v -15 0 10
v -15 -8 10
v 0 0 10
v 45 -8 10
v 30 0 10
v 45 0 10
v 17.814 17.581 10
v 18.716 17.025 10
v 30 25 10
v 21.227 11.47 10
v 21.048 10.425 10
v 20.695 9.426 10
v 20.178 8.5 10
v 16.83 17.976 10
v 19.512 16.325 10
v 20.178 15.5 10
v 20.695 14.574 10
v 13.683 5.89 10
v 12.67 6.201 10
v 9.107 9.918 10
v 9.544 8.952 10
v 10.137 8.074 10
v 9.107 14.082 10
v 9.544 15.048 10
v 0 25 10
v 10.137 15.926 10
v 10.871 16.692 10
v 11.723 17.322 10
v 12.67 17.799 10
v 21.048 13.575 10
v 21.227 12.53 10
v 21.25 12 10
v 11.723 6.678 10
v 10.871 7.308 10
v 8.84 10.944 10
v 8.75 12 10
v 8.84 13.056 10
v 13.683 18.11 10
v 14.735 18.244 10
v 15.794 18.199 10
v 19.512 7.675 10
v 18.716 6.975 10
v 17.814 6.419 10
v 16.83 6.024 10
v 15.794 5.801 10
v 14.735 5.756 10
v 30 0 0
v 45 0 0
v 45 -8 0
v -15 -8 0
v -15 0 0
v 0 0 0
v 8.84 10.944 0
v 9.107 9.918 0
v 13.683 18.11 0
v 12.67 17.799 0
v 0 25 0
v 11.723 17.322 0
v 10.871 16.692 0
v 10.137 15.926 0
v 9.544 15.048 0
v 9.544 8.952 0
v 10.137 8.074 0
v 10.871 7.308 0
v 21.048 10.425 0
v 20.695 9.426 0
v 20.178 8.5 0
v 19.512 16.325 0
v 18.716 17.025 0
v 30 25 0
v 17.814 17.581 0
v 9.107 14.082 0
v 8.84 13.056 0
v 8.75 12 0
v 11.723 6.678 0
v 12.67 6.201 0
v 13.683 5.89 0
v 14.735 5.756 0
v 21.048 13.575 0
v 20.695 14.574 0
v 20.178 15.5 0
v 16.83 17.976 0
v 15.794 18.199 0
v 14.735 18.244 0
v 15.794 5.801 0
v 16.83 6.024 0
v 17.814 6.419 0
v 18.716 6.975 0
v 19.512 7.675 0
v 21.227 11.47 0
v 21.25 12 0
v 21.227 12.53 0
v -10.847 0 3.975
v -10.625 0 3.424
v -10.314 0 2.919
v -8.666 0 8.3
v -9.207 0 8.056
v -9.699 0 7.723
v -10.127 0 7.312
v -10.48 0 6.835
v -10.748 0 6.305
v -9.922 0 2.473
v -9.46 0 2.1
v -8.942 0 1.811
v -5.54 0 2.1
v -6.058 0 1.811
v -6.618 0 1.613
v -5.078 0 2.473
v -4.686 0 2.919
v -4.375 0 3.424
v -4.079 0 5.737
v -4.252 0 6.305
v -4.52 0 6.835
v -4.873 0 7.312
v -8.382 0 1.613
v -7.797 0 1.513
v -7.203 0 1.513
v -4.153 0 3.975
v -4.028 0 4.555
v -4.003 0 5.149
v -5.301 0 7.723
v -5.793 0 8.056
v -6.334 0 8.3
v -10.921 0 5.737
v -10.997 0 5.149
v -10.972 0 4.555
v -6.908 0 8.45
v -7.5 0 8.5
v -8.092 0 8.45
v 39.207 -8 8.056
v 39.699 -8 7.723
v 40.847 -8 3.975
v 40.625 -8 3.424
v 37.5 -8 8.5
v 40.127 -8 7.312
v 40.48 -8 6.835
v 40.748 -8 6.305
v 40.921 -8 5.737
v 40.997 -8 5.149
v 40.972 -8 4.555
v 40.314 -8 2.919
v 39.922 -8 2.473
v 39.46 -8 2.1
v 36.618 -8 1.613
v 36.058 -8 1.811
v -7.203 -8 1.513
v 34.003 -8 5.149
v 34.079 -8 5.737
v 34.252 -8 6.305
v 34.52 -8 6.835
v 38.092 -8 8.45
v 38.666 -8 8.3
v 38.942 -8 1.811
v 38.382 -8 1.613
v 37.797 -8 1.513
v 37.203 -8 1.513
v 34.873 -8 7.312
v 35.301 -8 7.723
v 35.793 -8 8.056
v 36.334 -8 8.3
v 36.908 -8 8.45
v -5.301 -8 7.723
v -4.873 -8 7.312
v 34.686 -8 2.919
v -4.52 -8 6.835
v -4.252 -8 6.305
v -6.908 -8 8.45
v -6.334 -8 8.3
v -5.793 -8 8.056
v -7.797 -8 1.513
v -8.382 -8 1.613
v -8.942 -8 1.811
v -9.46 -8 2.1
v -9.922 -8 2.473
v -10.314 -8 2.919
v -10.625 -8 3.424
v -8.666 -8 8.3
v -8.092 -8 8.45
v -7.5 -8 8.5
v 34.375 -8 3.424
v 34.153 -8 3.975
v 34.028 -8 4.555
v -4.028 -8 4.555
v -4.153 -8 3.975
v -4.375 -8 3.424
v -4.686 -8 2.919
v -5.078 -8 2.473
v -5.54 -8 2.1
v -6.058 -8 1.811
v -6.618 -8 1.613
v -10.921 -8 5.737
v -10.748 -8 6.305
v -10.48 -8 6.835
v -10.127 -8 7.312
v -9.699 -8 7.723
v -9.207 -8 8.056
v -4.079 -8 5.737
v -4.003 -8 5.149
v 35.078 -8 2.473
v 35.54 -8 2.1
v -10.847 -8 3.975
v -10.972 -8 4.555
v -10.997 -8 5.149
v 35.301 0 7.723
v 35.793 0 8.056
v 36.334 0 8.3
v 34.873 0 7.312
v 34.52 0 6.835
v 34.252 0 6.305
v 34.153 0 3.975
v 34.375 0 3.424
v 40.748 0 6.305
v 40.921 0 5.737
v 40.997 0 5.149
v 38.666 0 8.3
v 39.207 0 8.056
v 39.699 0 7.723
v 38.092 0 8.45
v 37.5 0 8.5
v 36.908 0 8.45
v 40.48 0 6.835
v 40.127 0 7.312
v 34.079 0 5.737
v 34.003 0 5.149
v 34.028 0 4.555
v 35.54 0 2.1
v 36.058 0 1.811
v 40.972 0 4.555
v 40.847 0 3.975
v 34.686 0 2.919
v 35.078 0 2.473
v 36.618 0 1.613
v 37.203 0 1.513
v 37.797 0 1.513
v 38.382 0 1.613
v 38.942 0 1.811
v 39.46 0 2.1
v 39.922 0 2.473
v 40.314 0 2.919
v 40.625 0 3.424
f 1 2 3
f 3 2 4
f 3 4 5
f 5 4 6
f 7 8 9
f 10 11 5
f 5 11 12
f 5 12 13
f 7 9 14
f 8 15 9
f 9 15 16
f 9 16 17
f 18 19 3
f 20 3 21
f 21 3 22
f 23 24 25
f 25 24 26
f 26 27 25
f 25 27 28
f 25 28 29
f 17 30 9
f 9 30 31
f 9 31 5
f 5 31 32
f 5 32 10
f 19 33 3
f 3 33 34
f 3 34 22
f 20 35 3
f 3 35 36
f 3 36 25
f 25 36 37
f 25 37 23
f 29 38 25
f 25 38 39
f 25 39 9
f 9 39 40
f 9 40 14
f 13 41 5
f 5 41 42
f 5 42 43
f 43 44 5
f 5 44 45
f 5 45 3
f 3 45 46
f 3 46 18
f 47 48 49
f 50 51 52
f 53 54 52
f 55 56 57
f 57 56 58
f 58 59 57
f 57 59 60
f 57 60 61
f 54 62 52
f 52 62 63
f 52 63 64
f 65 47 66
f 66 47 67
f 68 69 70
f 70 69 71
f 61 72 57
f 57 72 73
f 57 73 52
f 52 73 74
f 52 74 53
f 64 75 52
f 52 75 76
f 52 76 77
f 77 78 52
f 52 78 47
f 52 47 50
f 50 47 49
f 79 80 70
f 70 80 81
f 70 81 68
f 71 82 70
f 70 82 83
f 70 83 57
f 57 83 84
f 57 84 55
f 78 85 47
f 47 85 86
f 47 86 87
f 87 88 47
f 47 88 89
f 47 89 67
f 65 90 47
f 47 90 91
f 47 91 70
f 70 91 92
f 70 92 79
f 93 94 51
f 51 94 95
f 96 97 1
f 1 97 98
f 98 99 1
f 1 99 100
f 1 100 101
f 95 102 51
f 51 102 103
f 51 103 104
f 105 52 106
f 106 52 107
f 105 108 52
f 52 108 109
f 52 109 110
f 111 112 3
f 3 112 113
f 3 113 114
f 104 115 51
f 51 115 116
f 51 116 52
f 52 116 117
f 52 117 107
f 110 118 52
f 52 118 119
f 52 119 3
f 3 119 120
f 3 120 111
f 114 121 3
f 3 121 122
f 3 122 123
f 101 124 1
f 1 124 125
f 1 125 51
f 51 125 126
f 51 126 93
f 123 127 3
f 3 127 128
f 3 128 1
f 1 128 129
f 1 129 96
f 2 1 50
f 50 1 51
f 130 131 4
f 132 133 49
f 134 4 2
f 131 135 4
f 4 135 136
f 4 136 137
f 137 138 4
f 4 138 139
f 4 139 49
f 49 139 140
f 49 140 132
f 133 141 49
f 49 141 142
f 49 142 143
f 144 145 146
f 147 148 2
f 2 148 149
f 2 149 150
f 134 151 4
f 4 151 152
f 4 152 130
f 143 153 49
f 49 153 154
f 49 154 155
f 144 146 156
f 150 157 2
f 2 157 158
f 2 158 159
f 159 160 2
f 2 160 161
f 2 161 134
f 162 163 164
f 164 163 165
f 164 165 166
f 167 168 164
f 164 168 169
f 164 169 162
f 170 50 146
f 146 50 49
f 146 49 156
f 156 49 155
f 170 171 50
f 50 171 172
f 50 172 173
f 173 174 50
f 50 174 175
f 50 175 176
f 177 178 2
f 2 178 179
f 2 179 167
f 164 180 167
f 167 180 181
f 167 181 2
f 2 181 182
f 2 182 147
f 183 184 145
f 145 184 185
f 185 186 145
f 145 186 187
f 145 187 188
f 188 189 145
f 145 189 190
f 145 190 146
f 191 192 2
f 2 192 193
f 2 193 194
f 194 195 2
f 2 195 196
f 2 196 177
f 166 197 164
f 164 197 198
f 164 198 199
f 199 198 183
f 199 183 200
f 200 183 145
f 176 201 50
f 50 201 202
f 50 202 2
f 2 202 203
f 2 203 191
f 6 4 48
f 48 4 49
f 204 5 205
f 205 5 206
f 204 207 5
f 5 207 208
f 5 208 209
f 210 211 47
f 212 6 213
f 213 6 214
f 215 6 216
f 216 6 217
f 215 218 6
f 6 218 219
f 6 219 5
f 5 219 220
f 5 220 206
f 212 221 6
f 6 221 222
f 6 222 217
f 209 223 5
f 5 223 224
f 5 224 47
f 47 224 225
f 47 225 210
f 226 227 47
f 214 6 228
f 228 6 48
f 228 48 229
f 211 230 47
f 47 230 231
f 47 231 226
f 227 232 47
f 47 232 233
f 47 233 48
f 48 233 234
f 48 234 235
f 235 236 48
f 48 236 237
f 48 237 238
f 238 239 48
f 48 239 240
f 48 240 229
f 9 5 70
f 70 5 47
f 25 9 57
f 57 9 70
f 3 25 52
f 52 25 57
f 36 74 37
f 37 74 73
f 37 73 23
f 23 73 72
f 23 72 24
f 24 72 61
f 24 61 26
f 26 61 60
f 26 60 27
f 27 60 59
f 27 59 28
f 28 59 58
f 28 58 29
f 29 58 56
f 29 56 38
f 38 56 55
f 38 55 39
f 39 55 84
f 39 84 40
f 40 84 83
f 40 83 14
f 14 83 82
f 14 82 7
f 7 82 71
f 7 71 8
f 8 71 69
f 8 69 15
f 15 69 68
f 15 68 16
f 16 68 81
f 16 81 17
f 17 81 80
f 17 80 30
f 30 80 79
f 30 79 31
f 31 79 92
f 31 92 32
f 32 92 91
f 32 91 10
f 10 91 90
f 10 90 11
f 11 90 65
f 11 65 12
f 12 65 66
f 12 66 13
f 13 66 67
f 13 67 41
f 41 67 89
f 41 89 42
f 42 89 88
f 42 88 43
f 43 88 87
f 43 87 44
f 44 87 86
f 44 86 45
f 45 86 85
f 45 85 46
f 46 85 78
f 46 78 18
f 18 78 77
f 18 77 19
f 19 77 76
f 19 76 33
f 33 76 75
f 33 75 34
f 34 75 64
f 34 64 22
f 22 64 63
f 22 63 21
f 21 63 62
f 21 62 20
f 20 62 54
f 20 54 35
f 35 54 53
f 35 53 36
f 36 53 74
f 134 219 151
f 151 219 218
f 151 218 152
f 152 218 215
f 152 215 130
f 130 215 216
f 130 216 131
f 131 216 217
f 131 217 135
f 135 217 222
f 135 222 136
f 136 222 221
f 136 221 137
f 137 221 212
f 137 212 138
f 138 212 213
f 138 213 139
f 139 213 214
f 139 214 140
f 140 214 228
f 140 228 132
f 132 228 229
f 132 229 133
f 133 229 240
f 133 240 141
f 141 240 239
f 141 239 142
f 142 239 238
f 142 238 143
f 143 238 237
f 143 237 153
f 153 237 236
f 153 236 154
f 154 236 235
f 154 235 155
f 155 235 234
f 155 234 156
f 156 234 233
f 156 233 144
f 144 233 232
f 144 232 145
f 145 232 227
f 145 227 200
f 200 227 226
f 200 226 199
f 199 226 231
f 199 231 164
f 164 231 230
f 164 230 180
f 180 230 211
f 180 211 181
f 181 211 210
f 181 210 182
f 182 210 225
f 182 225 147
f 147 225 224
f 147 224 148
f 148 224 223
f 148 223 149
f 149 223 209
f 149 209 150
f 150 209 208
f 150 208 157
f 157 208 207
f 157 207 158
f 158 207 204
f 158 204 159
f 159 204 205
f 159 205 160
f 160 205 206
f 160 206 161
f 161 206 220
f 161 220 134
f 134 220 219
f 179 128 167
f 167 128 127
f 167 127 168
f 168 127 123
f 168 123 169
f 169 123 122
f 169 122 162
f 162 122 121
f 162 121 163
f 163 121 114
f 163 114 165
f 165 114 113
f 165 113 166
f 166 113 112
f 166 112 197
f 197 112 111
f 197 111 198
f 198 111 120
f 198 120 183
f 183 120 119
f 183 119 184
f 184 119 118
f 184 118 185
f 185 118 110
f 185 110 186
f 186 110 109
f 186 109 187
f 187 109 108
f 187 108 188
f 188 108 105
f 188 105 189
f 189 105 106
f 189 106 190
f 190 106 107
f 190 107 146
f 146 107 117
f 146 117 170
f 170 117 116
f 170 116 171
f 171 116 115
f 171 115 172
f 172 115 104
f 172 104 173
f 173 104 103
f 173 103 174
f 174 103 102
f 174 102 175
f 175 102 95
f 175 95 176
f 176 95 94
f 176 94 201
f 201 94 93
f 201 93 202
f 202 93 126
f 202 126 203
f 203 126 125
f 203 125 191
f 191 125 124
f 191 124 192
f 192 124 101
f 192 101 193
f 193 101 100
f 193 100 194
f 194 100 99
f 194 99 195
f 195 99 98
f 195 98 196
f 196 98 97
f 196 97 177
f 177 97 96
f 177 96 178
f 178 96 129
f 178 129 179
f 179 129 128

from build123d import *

# Parameters (mm, degrees)
SKETCH_1_R          = 6.25
EXTRUDE_1_DEPTH     = 10
SKETCH_2_R          = 3.5
CUT_EXTRUDE_2_DEPTH = 53.440442409
SKETCH_3_R          = 3.5
CUT_EXTRUDE_3_DEPTH = 53.440442409


with BuildPart() as part:
    # 草圖1 → 填料-伸長1 (new body)
    with BuildSketch(Plane.XY):
        Polygon((30, 0), (45, 0), (45, -8), (-15, -8), (-15, 0), (0, 0), (0, 25), (30, 25), align=None)
        with Locations((15, 12)):
            Circle(SKETCH_1_R, mode=Mode.SUBTRACT)
    extrude(amount=EXTRUDE_1_DEPTH)

    # 草圖2 → 除料-伸長2 (cut, through all)
    with BuildSketch(Plane(origin=(0, 0, 0), x_dir=(1, 0, 0), z_dir=(0, 1, 0))):
        with Locations(Location((37.5, -5, 0), (0, 0, 270))):
            Circle(SKETCH_2_R)
    extrude(amount=-CUT_EXTRUDE_2_DEPTH, mode=Mode.SUBTRACT)

    # 草圖3 → 除料-伸長3 (cut, through all)
    with BuildSketch(Plane(origin=(0, 0, 0), x_dir=(1, 0, 0), z_dir=(0, 1, 0))):
        with Locations(Location((-7.5, -5, 0), (0, 0, 270))):
            Circle(SKETCH_3_R)
    extrude(amount=-CUT_EXTRUDE_3_DEPTH, mode=Mode.SUBTRACT)


solid = part.part
